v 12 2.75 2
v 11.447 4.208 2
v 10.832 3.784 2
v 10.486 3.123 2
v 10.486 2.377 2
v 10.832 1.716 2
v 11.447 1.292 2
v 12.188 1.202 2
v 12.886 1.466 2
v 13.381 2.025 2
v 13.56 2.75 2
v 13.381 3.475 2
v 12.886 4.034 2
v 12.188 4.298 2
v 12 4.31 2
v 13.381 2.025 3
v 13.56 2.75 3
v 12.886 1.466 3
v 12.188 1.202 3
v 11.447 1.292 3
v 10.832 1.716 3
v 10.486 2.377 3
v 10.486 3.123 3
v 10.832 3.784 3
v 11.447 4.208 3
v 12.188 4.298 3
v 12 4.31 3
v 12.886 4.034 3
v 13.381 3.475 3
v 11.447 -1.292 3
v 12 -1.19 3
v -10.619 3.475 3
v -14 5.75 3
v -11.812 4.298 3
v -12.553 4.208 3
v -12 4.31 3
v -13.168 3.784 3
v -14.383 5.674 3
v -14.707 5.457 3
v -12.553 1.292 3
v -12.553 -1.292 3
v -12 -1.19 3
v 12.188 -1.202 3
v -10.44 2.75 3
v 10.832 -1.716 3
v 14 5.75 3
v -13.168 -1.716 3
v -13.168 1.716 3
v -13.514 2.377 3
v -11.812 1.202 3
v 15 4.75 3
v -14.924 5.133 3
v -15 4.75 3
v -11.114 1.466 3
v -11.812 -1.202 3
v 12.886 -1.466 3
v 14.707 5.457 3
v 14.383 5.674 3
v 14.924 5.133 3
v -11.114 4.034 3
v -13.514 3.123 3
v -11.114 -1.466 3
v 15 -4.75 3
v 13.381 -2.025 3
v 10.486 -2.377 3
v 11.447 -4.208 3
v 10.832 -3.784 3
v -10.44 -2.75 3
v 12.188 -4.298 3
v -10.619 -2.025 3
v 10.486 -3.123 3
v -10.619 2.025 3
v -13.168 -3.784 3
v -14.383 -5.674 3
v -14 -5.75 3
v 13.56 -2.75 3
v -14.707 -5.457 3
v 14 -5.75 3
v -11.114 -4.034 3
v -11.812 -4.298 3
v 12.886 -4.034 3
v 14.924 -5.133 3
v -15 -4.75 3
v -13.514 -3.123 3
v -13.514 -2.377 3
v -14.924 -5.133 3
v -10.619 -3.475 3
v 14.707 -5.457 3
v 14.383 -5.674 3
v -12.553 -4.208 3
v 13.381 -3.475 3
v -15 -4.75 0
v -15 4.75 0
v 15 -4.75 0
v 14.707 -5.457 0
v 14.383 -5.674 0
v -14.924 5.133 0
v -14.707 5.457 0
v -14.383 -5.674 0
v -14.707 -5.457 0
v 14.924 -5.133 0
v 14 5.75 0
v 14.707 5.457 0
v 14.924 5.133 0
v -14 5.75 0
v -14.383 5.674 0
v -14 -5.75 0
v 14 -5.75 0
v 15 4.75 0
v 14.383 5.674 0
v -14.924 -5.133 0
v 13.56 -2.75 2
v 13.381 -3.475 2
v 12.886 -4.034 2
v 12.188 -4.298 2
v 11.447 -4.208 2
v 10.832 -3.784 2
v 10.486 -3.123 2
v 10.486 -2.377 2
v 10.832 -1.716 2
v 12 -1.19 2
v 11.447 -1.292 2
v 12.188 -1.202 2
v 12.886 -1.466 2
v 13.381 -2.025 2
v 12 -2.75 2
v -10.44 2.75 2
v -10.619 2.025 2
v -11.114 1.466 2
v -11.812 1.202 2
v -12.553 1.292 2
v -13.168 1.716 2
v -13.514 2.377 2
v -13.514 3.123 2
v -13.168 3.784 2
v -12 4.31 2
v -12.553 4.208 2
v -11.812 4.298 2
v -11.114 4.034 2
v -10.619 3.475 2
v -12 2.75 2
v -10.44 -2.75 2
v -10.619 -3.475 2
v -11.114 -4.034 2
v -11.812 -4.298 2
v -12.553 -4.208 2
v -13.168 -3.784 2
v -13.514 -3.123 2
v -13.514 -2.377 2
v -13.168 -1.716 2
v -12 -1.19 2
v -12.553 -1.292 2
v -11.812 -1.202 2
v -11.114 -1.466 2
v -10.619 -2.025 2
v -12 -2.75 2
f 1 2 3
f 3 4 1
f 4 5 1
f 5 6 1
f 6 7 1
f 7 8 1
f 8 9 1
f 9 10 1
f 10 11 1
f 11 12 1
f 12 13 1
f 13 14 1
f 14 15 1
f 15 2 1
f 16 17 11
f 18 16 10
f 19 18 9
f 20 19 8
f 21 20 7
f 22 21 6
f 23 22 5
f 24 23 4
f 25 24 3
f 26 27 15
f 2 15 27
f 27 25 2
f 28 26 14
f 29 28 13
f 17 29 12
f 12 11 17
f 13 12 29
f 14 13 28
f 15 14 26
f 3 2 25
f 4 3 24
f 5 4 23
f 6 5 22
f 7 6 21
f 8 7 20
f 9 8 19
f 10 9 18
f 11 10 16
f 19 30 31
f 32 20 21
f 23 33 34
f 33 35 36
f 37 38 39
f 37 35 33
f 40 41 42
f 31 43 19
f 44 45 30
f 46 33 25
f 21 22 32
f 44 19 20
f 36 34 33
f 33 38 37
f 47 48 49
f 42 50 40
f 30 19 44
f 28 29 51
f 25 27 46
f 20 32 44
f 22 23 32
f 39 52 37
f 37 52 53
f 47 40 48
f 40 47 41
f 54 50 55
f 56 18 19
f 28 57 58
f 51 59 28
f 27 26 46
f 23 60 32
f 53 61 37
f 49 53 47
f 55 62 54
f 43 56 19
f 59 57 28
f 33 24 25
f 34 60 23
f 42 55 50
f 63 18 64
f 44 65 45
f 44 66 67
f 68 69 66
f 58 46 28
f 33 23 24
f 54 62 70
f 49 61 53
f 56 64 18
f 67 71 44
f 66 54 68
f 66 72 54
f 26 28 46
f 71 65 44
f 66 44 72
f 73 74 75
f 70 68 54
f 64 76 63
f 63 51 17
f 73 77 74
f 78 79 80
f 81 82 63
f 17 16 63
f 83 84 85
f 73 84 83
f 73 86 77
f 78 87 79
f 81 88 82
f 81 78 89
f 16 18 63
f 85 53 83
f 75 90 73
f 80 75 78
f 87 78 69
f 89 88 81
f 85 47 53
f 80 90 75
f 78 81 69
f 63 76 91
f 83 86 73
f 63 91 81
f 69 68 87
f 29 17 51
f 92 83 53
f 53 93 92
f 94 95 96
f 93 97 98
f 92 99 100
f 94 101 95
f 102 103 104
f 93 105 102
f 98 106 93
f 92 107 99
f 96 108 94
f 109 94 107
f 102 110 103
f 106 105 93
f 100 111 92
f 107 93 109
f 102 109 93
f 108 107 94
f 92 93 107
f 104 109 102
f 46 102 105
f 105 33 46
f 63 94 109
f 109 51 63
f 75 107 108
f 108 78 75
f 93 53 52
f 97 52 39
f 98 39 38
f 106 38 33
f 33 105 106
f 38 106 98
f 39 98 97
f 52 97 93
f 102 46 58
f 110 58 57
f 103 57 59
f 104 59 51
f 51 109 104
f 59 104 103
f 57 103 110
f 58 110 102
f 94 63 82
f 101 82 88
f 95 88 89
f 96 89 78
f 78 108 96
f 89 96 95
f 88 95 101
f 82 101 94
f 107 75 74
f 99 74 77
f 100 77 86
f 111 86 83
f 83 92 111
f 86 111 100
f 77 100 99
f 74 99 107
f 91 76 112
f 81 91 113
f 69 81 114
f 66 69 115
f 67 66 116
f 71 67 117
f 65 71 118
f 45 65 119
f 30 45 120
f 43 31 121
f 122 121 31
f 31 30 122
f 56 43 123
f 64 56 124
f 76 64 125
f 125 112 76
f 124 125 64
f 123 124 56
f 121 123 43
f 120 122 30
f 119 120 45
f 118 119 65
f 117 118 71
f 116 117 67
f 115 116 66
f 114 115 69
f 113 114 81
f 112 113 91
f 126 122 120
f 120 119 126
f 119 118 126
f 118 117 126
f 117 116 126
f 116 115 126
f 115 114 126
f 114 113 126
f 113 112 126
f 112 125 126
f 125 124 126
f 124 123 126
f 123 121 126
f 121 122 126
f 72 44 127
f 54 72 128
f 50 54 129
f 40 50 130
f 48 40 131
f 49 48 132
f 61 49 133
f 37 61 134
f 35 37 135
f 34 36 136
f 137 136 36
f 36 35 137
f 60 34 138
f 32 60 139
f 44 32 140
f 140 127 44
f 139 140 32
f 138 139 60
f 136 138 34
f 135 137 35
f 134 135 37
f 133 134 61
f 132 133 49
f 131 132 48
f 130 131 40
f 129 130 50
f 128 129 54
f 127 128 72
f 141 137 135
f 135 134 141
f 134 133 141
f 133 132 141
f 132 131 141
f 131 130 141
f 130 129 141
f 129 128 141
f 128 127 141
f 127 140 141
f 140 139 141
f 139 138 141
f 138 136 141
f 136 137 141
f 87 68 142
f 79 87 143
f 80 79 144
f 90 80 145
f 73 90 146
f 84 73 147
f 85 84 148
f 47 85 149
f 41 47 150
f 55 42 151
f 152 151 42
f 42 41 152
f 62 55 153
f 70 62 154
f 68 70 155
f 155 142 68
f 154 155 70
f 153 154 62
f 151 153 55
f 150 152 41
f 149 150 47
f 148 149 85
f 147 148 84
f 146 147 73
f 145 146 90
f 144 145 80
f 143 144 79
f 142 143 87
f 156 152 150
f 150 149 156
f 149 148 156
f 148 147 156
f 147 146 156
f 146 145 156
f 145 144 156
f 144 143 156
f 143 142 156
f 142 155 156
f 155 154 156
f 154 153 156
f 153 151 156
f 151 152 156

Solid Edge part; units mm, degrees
sketch "Sketch1" plane through (0, 0, 0) normal (0, 0, 1) x (1, 0, 0)
  line L0 (-15, 5.75) -> (15, 5.75)
  line L1 (15, 5.75) -> (15, -5.75)
  line L2 (15, -5.75) -> (-15, -5.75)
  line L3 (-15, -5.75) -> (-15, 5.75)
  dimension "D1" = 30
  dimension "D2" = 11.5
extrude "Protrusion1" add sketch "Sketch1" along normal blind 3
fillet "Avrundningar_1" radius 1 4 edges at (-15, -5.75, 1.5) (15, -5.75, 1.5) (15, 5.75, 1.5) (-15, 5.75, 1.5)
sketch "Sketch2" plane through (0, 0, 3) normal (0, 0, 1) x (0, 1, 0)
  circle A0 centre (-2.75, 12) radius 1.5598
  circle A1 centre (2.75, 12) radius 1.5598
  circle A2 centre (-2.75, -12) radius 1.5598
  circle A3 centre (2.75, -12) radius 1.5598
  dimension "D1" = 3
  dimension "D2" = 3
  dimension "D3" = 3
  dimension "D4" = 3
  dimension "D5" = 3.1196
  dimension "D6" = 3.1196
  dimension "D7" = 3.1196
  dimension "D8" = 3.1196
extrude "Försänkningar_för_fjäder" cut sketch "Sketch2" against normal blind 1
